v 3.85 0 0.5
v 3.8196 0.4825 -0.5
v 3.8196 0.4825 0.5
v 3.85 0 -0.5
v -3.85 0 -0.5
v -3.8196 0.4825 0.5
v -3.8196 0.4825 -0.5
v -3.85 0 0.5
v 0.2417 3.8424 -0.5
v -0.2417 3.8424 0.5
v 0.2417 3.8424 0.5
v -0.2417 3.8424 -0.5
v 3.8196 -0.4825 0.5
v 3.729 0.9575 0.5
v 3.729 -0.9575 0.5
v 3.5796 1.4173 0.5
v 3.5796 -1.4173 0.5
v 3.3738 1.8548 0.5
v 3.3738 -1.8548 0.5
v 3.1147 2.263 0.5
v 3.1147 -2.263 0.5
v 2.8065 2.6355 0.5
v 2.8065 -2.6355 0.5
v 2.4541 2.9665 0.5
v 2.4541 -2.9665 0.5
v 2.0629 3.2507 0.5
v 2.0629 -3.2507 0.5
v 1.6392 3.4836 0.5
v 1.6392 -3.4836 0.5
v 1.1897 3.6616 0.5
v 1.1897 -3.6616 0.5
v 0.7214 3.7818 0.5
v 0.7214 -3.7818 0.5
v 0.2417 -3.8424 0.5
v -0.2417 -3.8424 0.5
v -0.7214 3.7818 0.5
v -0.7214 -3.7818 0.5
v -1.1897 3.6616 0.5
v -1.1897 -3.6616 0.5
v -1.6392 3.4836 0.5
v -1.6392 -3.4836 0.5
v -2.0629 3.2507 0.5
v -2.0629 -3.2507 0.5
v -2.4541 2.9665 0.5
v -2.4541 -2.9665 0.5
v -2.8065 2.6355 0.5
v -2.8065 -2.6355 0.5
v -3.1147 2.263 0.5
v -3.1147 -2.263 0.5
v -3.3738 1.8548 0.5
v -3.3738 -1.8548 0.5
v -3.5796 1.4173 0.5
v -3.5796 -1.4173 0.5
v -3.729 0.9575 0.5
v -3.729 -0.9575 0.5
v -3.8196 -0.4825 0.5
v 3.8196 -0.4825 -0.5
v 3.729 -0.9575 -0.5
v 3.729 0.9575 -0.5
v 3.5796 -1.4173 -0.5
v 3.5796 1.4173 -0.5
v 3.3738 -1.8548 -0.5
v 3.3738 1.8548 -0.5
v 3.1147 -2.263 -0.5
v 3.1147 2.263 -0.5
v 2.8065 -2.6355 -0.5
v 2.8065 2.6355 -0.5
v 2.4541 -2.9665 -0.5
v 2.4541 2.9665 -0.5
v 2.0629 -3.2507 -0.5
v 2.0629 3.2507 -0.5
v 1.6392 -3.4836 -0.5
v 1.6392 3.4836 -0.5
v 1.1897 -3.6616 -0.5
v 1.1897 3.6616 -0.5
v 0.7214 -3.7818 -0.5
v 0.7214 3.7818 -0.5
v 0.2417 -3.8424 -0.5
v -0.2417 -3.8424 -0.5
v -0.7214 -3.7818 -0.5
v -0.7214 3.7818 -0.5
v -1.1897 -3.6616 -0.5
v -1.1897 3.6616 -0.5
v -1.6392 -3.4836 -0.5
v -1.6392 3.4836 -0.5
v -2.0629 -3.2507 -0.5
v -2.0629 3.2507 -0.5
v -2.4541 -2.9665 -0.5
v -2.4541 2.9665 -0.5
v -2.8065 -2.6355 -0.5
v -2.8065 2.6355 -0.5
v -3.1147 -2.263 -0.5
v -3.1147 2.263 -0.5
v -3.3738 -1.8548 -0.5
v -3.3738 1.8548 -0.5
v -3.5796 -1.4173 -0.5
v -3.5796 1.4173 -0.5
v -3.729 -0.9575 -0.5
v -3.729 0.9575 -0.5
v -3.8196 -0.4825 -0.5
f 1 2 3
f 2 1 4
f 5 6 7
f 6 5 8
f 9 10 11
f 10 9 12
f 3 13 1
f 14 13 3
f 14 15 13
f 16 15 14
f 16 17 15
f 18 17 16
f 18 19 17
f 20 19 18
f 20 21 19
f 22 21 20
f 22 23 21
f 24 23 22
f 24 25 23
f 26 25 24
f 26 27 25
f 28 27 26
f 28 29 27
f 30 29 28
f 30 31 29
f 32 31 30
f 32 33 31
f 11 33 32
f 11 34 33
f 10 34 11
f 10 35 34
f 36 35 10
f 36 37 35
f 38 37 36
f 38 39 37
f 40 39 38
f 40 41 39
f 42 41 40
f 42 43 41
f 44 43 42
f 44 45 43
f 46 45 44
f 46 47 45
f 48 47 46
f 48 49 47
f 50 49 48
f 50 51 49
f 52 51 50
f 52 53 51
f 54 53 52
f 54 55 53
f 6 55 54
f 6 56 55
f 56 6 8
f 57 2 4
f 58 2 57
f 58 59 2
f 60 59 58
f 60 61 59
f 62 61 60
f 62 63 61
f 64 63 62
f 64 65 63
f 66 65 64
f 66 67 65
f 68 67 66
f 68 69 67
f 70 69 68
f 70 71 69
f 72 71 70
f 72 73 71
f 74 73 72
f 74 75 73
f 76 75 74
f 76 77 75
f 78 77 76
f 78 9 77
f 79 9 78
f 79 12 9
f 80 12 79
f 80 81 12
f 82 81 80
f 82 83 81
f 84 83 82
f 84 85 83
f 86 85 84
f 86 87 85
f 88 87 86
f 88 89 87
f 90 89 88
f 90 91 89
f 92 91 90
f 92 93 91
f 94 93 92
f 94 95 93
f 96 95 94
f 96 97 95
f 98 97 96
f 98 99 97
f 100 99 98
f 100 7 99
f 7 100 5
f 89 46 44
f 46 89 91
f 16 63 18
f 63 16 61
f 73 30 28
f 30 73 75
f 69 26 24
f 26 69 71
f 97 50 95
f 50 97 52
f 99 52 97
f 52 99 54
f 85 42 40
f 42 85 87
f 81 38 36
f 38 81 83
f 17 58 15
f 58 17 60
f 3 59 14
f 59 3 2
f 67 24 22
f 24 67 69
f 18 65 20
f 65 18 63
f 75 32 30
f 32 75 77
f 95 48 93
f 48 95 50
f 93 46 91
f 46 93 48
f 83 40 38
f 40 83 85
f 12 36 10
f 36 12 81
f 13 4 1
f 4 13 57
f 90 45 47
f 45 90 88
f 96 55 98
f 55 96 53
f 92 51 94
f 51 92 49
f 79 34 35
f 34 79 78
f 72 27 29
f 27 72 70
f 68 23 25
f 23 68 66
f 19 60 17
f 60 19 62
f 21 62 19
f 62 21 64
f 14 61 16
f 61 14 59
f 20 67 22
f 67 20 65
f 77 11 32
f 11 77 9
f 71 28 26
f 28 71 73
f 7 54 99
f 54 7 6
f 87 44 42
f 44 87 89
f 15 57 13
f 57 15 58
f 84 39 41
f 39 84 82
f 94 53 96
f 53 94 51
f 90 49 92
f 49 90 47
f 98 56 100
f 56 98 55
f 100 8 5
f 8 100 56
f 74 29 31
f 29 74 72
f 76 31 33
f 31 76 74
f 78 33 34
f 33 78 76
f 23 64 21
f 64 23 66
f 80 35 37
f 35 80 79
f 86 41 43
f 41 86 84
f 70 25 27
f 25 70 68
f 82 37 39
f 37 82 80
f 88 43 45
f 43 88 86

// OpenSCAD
$fn = 50;


difference() {
	union() {
		translate(v = [0, 0, -0.5000000000]) {
			cylinder(h = 1, r = 3.8500000000);
		}
	}
	union() {
		translate(v = [0, 0, -100.0000000000]) {
			cylinder(h = 200, r = 0);
		}
	}
}
